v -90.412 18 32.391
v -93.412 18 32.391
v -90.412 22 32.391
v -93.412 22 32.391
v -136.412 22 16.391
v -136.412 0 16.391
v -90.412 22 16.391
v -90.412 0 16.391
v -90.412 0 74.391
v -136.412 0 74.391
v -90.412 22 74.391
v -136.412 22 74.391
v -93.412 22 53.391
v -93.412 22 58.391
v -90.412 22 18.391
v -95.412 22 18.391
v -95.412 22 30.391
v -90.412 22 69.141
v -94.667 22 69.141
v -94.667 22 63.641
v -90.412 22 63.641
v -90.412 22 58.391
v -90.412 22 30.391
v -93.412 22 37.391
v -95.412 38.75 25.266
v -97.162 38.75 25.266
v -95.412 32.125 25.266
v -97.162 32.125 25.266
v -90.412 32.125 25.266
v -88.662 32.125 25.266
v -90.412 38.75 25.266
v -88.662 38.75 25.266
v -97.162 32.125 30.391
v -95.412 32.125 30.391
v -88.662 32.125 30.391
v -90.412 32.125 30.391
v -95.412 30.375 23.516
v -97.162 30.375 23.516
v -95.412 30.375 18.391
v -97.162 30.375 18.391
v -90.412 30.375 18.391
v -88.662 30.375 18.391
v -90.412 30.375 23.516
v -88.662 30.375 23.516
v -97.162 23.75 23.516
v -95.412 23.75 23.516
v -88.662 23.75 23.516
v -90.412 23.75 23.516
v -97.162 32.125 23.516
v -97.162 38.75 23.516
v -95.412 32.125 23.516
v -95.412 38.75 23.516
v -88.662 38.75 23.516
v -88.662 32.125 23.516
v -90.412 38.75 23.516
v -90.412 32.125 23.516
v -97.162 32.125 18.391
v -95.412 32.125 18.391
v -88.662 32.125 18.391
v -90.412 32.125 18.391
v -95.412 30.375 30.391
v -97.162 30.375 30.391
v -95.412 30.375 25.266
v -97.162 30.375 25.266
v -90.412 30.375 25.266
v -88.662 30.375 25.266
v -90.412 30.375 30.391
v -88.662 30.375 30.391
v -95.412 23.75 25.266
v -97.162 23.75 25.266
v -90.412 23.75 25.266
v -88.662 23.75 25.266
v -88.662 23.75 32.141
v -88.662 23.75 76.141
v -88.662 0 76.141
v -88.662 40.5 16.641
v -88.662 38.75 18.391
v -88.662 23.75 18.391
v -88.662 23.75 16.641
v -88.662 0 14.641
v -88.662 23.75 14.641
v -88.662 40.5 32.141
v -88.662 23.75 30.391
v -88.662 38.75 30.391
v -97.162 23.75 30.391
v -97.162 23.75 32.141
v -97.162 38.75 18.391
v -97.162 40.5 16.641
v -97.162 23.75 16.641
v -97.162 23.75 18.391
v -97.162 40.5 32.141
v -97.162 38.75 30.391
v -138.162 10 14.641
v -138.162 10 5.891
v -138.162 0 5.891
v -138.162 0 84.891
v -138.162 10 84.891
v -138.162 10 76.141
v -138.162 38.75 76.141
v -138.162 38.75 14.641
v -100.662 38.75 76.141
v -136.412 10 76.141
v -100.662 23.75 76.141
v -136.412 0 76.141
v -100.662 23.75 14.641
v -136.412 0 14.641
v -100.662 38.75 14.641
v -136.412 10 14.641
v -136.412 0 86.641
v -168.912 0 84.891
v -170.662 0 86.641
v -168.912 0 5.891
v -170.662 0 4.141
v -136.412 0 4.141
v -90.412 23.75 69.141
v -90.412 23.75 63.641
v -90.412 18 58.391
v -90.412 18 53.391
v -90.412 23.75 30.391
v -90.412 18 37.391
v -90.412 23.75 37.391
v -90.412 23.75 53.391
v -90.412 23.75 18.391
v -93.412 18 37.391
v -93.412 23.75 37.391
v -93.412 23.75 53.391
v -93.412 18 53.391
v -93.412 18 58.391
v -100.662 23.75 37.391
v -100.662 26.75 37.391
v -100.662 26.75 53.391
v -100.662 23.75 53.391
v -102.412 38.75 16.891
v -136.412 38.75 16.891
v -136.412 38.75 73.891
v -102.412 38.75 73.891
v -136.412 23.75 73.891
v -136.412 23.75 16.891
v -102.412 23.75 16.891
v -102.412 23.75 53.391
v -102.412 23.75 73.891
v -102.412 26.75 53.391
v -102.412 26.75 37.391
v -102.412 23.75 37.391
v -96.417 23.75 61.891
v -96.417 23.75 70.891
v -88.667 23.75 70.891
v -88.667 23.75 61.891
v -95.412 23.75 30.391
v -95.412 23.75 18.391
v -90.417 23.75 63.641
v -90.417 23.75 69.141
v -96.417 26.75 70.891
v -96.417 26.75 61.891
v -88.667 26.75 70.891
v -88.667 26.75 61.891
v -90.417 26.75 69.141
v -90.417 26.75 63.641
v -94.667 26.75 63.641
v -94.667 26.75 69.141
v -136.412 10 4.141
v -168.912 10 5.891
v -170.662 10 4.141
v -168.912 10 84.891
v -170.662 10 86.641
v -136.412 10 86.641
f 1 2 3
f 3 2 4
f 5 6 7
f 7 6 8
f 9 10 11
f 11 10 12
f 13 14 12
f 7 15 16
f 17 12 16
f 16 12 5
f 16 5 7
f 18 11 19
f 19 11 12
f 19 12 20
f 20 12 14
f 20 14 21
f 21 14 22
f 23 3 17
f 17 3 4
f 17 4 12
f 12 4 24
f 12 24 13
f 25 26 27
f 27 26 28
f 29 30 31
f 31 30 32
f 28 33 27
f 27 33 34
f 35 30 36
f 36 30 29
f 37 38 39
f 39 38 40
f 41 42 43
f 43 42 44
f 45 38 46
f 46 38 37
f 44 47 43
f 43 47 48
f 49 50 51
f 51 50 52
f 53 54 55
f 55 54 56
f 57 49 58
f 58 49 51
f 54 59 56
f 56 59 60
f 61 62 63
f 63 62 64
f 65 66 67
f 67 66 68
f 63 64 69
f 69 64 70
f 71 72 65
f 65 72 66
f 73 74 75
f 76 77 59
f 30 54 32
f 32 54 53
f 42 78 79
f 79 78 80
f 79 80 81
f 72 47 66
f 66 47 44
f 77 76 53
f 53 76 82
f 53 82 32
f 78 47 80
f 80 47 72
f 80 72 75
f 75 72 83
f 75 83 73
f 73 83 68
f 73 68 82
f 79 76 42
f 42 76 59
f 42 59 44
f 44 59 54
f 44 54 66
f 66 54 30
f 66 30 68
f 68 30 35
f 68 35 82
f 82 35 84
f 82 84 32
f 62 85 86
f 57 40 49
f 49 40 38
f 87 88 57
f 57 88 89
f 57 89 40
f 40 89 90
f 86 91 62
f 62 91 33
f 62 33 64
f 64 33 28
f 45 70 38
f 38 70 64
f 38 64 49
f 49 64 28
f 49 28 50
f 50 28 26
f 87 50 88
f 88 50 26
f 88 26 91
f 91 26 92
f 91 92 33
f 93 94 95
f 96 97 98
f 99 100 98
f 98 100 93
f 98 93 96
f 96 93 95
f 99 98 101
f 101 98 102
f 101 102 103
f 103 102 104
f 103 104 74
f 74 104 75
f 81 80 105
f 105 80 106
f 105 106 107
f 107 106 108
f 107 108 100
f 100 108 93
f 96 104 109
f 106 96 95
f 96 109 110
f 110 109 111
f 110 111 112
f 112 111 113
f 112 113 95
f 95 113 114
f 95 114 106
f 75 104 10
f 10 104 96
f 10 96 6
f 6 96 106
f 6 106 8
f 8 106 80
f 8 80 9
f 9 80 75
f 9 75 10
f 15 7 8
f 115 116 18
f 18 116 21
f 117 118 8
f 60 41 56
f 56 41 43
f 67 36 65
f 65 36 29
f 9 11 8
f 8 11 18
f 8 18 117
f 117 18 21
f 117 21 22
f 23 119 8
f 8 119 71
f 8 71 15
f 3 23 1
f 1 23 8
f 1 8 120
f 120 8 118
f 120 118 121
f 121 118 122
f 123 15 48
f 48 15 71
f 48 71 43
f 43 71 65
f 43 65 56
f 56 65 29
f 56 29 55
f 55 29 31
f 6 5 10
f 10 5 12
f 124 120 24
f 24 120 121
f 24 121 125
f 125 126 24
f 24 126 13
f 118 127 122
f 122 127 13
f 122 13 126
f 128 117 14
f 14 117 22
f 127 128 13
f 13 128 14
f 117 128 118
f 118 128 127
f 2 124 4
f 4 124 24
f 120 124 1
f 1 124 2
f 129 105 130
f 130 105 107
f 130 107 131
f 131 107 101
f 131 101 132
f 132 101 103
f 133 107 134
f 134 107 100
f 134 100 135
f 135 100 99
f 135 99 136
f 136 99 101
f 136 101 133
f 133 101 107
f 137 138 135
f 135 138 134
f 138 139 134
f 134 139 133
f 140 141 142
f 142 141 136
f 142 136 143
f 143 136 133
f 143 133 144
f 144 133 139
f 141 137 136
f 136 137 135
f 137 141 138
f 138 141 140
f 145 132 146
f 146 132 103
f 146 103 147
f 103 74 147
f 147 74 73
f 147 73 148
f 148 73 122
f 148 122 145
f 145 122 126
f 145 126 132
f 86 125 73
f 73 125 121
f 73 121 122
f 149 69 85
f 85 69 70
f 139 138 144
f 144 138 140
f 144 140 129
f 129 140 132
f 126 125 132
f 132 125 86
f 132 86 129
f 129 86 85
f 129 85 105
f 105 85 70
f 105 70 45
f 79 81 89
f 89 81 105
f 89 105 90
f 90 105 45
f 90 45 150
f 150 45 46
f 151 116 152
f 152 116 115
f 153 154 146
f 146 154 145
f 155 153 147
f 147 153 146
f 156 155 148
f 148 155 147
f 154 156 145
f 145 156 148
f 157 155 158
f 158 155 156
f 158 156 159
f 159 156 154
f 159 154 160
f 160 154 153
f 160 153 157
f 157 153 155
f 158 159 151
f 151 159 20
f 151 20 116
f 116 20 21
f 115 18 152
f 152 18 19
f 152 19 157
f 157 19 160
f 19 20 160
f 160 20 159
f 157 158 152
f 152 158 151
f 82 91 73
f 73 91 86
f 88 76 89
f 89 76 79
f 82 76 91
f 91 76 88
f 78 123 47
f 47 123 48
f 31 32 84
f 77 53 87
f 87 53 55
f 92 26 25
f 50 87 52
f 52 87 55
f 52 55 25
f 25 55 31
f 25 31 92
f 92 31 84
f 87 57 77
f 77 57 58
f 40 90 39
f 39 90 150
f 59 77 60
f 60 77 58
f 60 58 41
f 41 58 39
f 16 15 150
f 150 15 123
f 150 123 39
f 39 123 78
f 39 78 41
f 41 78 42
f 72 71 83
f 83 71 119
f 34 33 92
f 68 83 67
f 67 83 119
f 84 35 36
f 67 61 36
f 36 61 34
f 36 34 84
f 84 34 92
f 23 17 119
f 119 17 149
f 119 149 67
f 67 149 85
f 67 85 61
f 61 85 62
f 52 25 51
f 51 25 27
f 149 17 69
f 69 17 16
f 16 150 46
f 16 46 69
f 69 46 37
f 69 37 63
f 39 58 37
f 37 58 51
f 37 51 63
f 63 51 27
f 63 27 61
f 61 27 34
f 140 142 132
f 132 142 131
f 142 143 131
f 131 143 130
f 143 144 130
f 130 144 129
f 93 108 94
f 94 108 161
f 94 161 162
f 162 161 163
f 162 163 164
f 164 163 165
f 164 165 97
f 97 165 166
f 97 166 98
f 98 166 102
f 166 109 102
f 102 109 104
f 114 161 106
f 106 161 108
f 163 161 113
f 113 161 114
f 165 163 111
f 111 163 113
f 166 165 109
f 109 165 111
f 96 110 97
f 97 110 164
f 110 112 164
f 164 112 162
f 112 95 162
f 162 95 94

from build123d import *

# Parameters (mm, degrees)
SKETCH1_W               = 49.5
SKETCH1_H               = 61.5
BOSS_EXTRUDE1_DEPTH     = 23.75
SKETCH2_W               = 46
SKETCH2_H               = 58
CUT_EXTRUDE1_DEPTH      = 22
SKETCH3_W               = 3
SKETCH3_H               = 16
CUT_EXTRUDE2_DEPTH      = 1.75
SKETCH7_W               = 3
SKETCH7_H               = 5
BOSS_EXTRUDE2_DEPTH     = 4
SKETCH11_W              = 37.5
SKETCH11_H              = 61.5
BOSS_EXTRUDE3_DEPTH     = 15
SKETCH12_W              = 34
SKETCH12_H              = 57
CUT_EXTRUDE3_DEPTH      = 15
SKETCH14_W              = 7.75
SKETCH14_H              = 9
BOSS_EXTRUDE4_DEPTH     = 3
SKETCH15_W              = 4.25
SKETCH15_H              = 5.5
CUT_EXTRUDE4_DEPTH      = 4.75
SKETCH16_W              = 8.5
SKETCH16_H              = 15.5
BOSS_EXTRUDE5_DEPTH     = 16.75
SKETCH17_W              = 5.125
SKETCH17_H              = 6.625
CUT_EXTRUDE5_DEPTH      = 8.5
CUT_EXTRUDE6_DEPTH      = 15
CUT_EXTRUDE6_DEPTH_BACK = 1.75
SKETCH18_W              = 5
SKETCH18_H              = 12
SKETCH20_W              = 16
SKETCH20_H              = 3
CUT_EXTRUDE7_DEPTH      = 1.75
SKETCH21_W              = 34.25
SKETCH21_H              = 82.5
BOSS_EXTRUDE7_DEPTH     = 10
SKETCH23_W              = 30.75
SKETCH23_H              = 79
CUT_EXTRUDE8_DEPTH      = 10
SKETCH25_W              = 3
SKETCH25_H              = 5.25
BOSS_EXTRUDE8_DEPTH     = 1.75
SKETCH28_W              = 3
SKETCH28_H              = 2
BOSS_EXTRUDE9_DEPTH     = 1.75


with BuildPart() as part:
    # Sketch1 → Boss-Extrude1 (new body)
    with BuildSketch(Plane(origin=(0, 0, 0), x_dir=(1, 0, 0), z_dir=(0, 1, 0))):
        with Locations((-113.412024913, -45.391200727)):
            Rectangle(SKETCH1_W, SKETCH1_H)
    extrude(amount=BOSS_EXTRUDE1_DEPTH)

    # Sketch2 → Cut-Extrude1 (cut)
    with BuildSketch(Plane(origin=(0, 0, 0), x_dir=(-1, 0, 0), z_dir=(0, -1, 0))):
        with Locations((113.412024913, -45.391200727)):
            Rectangle(SKETCH2_W, SKETCH2_H)
    extrude(amount=-CUT_EXTRUDE1_DEPTH, mode=Mode.SUBTRACT)

    # Sketch3 → Cut-Extrude2 (cut)
    with BuildSketch(Plane(origin=(0, 22, 0), x_dir=(-1, 0, 0), z_dir=(0, -1, 0))):
        with Locations((91.912024913, -66.391200727)):
            Rectangle(SKETCH3_W, SKETCH3_H)
        with Locations((91.912024913, -24.391200727)):
            Rectangle(SKETCH3_W, SKETCH3_H)
        with Locations((91.912024913, -45.391200727)):
            Rectangle(SKETCH3_W, SKETCH3_H)
    extrude(amount=-CUT_EXTRUDE2_DEPTH, mode=Mode.SUBTRACT)

    # Sketch7 → Boss-Extrude2 (add)
    with BuildSketch(Plane(origin=(0, 22, 0), x_dir=(-1, 0, 0), z_dir=(0, -1, 0))):
        with Locations((91.912024913, -55.891200727)):
            Rectangle(SKETCH7_W, SKETCH7_H)
        with Locations((91.912024913, -34.891200727)):
            Rectangle(SKETCH7_W, SKETCH7_H)
    extrude(amount=BOSS_EXTRUDE2_DEPTH)

    # Sketch11 → Boss-Extrude3 (add)
    with BuildSketch(Plane(origin=(0, 23.75, 0), x_dir=(1, 0, 0), z_dir=(0, 1, 0))):
        with Locations((-119.412024913, -45.391200727)):
            Rectangle(SKETCH11_W, SKETCH11_H)
    extrude(amount=BOSS_EXTRUDE3_DEPTH)

    # Sketch12 → Cut-Extrude3 (cut)
    with BuildSketch(Plane(origin=(0, 38.75, 0), x_dir=(1, 0, 0), z_dir=(0, 1, 0))):
        with Locations((-119.412024913, -45.391200727)):
            Rectangle(SKETCH12_W, SKETCH12_H)
    extrude(amount=-CUT_EXTRUDE3_DEPTH, mode=Mode.SUBTRACT)

    # Sketch14 → Boss-Extrude4 (add)
    with BuildSketch(Plane(origin=(0, 23.75, 0), x_dir=(1, 0, 0), z_dir=(0, 1, 0))):
        with Locations((-92.542024913, -66.391200727)):
            Rectangle(SKETCH14_W, SKETCH14_H)
    extrude(amount=BOSS_EXTRUDE4_DEPTH)

    # Sketch15 → Cut-Extrude4 (cut)
    with BuildSketch(Plane(origin=(0, 26.75, 0), x_dir=(1, 0, 0), z_dir=(0, 1, 0))):
        with Locations((-92.542024913, -66.391200727)):
            Rectangle(SKETCH15_W, SKETCH15_H)
    extrude(amount=-CUT_EXTRUDE4_DEPTH, mode=Mode.SUBTRACT)

    # Sketch16 → Boss-Extrude5 (add)
    with BuildSketch(Plane(origin=(0, 23.75, 0), x_dir=(1, 0, 0), z_dir=(0, 1, 0))):
        with Locations((-92.912024913, -24.391200727)):
            Rectangle(SKETCH16_W, SKETCH16_H)
    extrude(amount=BOSS_EXTRUDE5_DEPTH)

    # Sketch17 → Cut-Extrude5 (cut)
    with BuildSketch(Plane(origin=(-88.662024913, 0, 0), x_dir=(0, 0, -1), z_dir=(1, 0, 0))):
        with Locations((-27.828700727, 35.4375)):
            Rectangle(SKETCH17_W, SKETCH17_H)
        with Locations((-27.828700727, 27.0625)):
            Rectangle(SKETCH17_W, SKETCH17_H)
        with Locations((-20.953700727, 35.4375)):
            Rectangle(SKETCH17_W, SKETCH17_H)
        with Locations((-20.953700727, 27.0625)):
            Rectangle(SKETCH17_W, SKETCH17_H)
    extrude(amount=-CUT_EXTRUDE5_DEPTH, mode=Mode.SUBTRACT)

    # Sketch18 → Cut-Extrude6 (cut, two sides: drawn at the far end of the back side and taken through both)
    with BuildSketch(Plane(origin=(0, 23.75, 0), x_dir=(1, 0, 0), z_dir=(0, 1, 0)).offset(-CUT_EXTRUDE6_DEPTH_BACK)):
        with Locations((-92.912024913, -24.391200727)):
            Rectangle(SKETCH18_W, SKETCH18_H)
    extrude(amount=CUT_EXTRUDE6_DEPTH + CUT_EXTRUDE6_DEPTH_BACK, mode=Mode.SUBTRACT)

    # Sketch20 → Cut-Extrude7 (cut)
    with BuildSketch(Plane(origin=(-100.662024913, 0, 0), x_dir=(0, 0, -1), z_dir=(1, 0, 0))):
        with Locations((-45.391200727, 25.25)):
            Rectangle(SKETCH20_W, SKETCH20_H)
    extrude(amount=-CUT_EXTRUDE7_DEPTH, mode=Mode.SUBTRACT)

    # Sketch21 → Boss-Extrude7 (add)
    with BuildSketch(Plane(origin=(0, 0, 0), x_dir=(-1, 0, 0), z_dir=(0, -1, 0))):
        with Locations((153.537024913, -45.391200727)):
            Rectangle(SKETCH21_W, SKETCH21_H)
    extrude(amount=-BOSS_EXTRUDE7_DEPTH)

    # Sketch23 → Cut-Extrude8 (cut)
    with BuildSketch(Plane(origin=(0, 10, 0), x_dir=(1, 0, 0), z_dir=(0, 1, 0))):
        with Locations((-153.537024913, -45.391200727)):
            Rectangle(SKETCH23_W, SKETCH23_H)
    extrude(amount=-CUT_EXTRUDE8_DEPTH, mode=Mode.SUBTRACT)

    # Sketch25 → Boss-Extrude8 (add)
    with BuildSketch(Plane(origin=(0, 22, 0), x_dir=(-1, 0, 0), z_dir=(0, -1, 0))):
        with Locations((91.912024913, -61.016200727)):
            Rectangle(SKETCH25_W, SKETCH25_H)
        with Locations((91.912024913, -71.766200727)):
            Rectangle(SKETCH25_W, SKETCH25_H)
    extrude(amount=-BOSS_EXTRUDE8_DEPTH)

    # Sketch28 → Boss-Extrude9 (add)
    with BuildSketch(Plane(origin=(0, 23.75, 0), x_dir=(1, 0, 0), z_dir=(0, 1, 0))):
        with Locations((-91.912024913, -17.391200727)):
            Rectangle(SKETCH28_W, SKETCH28_H)
        with Locations((-91.912024913, -31.391200727)):
            Rectangle(SKETCH28_W, SKETCH28_H)
    extrude(amount=-BOSS_EXTRUDE9_DEPTH)


solid = part.part
